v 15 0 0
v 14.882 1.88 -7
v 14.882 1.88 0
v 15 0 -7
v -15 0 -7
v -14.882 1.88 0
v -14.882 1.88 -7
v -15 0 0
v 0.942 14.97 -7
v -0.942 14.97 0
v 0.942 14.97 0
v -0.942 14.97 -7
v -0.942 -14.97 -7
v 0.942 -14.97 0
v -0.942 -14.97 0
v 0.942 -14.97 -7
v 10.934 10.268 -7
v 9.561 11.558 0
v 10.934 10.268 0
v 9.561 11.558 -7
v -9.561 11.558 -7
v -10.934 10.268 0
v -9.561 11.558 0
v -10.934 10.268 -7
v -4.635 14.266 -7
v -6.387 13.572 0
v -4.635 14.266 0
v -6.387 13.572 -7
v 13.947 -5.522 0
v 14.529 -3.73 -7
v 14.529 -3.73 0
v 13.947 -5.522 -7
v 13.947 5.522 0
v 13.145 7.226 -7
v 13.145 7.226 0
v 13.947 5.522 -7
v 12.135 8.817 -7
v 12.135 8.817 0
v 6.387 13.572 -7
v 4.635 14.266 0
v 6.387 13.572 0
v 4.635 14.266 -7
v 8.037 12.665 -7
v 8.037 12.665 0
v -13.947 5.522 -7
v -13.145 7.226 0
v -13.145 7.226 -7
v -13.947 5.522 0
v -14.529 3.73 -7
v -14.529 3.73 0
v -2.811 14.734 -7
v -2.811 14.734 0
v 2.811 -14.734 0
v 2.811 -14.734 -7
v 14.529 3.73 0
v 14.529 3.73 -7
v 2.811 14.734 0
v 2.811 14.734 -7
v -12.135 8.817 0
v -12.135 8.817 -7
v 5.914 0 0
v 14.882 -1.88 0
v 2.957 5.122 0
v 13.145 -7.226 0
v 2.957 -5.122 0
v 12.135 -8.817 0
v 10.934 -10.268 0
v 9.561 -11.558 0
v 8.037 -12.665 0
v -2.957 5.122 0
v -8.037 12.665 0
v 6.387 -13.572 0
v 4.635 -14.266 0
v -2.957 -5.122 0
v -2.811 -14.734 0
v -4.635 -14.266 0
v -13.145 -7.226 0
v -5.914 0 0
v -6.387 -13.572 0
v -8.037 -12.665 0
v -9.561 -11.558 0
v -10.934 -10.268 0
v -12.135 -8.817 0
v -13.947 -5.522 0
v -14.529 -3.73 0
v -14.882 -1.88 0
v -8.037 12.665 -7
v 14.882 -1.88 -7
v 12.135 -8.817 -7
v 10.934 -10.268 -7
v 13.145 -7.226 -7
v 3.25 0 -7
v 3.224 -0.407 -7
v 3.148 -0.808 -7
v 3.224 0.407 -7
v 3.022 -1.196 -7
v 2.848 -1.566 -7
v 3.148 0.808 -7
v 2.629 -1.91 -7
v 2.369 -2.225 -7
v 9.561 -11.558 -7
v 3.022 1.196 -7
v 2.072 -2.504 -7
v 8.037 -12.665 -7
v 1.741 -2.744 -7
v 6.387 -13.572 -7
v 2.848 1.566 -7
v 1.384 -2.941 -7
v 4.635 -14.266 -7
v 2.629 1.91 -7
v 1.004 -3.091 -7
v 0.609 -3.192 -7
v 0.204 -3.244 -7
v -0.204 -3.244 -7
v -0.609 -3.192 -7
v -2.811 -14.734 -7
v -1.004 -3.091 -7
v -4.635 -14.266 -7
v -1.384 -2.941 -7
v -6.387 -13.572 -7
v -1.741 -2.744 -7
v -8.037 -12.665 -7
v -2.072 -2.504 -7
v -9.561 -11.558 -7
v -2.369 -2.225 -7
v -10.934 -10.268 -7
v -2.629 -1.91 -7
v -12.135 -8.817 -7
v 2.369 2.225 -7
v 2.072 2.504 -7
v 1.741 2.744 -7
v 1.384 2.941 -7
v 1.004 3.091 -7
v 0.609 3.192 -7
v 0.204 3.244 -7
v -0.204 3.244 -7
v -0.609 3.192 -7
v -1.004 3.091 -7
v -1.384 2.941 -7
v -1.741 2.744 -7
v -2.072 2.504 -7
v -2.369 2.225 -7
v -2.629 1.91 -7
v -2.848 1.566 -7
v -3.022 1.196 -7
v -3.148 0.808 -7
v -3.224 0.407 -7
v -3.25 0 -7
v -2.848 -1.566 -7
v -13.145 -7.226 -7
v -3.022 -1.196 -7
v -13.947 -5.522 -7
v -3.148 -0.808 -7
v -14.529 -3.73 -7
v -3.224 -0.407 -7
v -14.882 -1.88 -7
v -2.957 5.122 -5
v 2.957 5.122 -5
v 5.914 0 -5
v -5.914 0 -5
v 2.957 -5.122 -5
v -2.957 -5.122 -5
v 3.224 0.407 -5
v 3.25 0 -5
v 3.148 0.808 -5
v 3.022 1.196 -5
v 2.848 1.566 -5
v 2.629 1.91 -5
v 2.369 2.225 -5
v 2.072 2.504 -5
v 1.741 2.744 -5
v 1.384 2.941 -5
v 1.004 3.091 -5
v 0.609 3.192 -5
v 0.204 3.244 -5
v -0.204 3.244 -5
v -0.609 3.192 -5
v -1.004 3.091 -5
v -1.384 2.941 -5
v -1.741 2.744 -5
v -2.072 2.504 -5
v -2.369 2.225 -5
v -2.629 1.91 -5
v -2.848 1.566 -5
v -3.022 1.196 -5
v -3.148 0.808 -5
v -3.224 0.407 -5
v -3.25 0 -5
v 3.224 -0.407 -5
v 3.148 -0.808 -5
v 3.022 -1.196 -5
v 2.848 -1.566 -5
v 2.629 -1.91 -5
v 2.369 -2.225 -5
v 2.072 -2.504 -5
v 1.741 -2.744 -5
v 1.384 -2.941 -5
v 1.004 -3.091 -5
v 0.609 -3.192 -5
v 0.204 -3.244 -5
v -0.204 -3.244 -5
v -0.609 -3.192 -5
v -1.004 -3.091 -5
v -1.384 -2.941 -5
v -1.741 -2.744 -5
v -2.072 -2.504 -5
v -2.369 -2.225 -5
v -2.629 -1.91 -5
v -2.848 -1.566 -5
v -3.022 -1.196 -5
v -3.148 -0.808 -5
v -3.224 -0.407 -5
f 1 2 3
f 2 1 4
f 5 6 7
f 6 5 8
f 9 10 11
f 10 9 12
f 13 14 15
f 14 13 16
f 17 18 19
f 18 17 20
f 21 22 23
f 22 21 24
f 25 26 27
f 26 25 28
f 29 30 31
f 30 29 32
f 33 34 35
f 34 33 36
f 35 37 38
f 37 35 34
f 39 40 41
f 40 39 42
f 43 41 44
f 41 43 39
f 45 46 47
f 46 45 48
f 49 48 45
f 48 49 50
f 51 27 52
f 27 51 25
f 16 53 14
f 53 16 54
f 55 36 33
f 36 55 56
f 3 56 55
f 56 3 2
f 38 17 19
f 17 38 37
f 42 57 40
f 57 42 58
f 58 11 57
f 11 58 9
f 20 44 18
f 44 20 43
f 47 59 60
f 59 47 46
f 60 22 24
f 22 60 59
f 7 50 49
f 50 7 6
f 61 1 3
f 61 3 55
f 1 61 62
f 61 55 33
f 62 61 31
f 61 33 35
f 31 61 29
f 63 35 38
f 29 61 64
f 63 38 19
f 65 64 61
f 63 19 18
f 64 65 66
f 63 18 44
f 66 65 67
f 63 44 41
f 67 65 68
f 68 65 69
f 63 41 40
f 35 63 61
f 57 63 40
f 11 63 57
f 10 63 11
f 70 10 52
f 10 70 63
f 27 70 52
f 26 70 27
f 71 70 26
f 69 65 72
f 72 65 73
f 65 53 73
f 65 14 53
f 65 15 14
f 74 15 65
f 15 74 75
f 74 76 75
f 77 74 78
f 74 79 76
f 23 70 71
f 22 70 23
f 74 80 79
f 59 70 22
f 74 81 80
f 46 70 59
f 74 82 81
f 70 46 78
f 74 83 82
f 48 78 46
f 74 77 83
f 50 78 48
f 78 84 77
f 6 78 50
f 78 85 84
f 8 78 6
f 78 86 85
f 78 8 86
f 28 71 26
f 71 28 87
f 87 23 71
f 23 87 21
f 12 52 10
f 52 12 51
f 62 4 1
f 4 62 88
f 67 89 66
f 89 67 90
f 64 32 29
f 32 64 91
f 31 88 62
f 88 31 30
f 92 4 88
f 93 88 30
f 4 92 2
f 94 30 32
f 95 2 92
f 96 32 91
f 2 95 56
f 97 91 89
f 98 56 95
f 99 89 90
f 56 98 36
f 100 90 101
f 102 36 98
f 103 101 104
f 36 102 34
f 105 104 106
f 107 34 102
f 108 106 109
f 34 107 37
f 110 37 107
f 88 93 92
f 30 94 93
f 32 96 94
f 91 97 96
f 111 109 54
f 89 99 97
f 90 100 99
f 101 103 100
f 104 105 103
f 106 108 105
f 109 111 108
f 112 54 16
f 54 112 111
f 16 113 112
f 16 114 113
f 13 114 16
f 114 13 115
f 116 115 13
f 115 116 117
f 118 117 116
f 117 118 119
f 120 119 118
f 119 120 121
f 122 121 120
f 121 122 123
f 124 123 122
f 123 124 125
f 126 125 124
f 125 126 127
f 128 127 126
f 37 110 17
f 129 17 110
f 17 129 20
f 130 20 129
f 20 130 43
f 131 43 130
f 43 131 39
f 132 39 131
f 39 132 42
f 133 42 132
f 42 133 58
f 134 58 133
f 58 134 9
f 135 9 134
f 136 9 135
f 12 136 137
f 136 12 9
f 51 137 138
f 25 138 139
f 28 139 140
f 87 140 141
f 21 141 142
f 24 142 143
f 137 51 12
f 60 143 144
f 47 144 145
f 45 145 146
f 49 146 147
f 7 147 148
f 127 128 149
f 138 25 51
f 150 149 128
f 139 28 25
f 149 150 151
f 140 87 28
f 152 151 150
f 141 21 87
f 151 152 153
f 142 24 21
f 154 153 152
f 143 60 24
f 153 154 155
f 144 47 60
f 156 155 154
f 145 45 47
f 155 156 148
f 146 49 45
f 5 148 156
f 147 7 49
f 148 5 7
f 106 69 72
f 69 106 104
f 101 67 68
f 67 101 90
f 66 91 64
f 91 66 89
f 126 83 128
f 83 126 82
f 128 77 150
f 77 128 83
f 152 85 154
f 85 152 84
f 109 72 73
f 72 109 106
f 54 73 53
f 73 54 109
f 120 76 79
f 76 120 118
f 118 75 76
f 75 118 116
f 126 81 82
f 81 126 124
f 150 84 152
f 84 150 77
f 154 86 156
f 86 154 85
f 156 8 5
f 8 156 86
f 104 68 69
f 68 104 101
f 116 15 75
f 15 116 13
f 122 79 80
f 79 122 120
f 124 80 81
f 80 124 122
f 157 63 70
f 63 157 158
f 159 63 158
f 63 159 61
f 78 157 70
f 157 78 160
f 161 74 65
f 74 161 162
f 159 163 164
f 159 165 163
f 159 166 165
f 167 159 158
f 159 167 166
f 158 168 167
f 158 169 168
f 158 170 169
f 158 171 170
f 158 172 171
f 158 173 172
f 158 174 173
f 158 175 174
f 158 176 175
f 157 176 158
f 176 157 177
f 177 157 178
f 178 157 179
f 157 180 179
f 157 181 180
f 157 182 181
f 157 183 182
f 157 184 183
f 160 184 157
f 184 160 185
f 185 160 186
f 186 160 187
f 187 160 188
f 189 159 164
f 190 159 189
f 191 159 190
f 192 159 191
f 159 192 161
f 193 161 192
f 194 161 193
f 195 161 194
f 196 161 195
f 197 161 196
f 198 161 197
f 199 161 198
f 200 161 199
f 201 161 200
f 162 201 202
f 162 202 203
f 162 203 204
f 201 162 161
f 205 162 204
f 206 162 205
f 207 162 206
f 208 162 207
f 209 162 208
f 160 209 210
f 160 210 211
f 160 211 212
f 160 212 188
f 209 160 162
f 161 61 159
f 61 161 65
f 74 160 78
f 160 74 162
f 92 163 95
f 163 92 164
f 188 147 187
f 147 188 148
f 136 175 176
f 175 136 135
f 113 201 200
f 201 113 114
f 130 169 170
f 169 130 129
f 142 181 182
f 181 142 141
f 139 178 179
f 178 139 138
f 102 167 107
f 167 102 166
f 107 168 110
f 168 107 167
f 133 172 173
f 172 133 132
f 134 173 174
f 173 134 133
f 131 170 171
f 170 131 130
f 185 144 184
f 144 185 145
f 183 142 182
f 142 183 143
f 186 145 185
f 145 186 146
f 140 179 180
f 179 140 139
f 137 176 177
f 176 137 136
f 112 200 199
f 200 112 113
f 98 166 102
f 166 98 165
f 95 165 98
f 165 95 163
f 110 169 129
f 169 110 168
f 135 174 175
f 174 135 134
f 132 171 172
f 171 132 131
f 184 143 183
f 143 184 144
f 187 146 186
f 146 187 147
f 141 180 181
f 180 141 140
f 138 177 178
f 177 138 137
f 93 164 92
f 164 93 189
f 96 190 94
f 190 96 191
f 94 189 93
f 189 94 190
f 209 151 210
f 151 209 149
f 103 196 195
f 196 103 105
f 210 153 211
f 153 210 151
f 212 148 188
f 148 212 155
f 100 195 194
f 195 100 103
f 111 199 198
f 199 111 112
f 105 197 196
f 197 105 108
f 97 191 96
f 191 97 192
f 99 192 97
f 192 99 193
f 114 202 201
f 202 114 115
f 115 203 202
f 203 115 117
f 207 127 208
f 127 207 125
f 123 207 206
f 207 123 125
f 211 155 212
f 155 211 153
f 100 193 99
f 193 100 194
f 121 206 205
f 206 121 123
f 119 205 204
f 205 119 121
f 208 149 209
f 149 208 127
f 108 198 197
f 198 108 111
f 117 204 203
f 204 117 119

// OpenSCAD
$fn = 50;


difference() {
	union() {
		translate(v = [0, 0, -7.0000000000]) {
			cylinder(h = 7.0000000000, r = 15.0000000000);
		}
		translate(v = [0, 0, -8.5000000000]) {
			cylinder(h = 8.5000000000, r = 2.8750000000);
		}
	}
	union() {
		translate(v = [0, 0, 0]) {
			rotate(a = [0, 0, 0]) {
				difference() {
					union() {
						translate(v = [0, 0, -5]) {
							linear_extrude(height = 5) {
								polygon(points = [[5.9142500000, 0.0000000000], [2.9571250000, 5.1218907443], [-2.9571250000, 5.1218907443], [-5.9142500000, 0.0000000000], [-2.9571250000, -5.1218907443], [2.9571250000, -5.1218907443]]);
							}
						}
					}
					union();
				}
			}
		}
		#translate(v = [0, 0, -100.0000000000]) {
			cylinder(h = 200, r = 3.2500000000);
		}
	}
}
